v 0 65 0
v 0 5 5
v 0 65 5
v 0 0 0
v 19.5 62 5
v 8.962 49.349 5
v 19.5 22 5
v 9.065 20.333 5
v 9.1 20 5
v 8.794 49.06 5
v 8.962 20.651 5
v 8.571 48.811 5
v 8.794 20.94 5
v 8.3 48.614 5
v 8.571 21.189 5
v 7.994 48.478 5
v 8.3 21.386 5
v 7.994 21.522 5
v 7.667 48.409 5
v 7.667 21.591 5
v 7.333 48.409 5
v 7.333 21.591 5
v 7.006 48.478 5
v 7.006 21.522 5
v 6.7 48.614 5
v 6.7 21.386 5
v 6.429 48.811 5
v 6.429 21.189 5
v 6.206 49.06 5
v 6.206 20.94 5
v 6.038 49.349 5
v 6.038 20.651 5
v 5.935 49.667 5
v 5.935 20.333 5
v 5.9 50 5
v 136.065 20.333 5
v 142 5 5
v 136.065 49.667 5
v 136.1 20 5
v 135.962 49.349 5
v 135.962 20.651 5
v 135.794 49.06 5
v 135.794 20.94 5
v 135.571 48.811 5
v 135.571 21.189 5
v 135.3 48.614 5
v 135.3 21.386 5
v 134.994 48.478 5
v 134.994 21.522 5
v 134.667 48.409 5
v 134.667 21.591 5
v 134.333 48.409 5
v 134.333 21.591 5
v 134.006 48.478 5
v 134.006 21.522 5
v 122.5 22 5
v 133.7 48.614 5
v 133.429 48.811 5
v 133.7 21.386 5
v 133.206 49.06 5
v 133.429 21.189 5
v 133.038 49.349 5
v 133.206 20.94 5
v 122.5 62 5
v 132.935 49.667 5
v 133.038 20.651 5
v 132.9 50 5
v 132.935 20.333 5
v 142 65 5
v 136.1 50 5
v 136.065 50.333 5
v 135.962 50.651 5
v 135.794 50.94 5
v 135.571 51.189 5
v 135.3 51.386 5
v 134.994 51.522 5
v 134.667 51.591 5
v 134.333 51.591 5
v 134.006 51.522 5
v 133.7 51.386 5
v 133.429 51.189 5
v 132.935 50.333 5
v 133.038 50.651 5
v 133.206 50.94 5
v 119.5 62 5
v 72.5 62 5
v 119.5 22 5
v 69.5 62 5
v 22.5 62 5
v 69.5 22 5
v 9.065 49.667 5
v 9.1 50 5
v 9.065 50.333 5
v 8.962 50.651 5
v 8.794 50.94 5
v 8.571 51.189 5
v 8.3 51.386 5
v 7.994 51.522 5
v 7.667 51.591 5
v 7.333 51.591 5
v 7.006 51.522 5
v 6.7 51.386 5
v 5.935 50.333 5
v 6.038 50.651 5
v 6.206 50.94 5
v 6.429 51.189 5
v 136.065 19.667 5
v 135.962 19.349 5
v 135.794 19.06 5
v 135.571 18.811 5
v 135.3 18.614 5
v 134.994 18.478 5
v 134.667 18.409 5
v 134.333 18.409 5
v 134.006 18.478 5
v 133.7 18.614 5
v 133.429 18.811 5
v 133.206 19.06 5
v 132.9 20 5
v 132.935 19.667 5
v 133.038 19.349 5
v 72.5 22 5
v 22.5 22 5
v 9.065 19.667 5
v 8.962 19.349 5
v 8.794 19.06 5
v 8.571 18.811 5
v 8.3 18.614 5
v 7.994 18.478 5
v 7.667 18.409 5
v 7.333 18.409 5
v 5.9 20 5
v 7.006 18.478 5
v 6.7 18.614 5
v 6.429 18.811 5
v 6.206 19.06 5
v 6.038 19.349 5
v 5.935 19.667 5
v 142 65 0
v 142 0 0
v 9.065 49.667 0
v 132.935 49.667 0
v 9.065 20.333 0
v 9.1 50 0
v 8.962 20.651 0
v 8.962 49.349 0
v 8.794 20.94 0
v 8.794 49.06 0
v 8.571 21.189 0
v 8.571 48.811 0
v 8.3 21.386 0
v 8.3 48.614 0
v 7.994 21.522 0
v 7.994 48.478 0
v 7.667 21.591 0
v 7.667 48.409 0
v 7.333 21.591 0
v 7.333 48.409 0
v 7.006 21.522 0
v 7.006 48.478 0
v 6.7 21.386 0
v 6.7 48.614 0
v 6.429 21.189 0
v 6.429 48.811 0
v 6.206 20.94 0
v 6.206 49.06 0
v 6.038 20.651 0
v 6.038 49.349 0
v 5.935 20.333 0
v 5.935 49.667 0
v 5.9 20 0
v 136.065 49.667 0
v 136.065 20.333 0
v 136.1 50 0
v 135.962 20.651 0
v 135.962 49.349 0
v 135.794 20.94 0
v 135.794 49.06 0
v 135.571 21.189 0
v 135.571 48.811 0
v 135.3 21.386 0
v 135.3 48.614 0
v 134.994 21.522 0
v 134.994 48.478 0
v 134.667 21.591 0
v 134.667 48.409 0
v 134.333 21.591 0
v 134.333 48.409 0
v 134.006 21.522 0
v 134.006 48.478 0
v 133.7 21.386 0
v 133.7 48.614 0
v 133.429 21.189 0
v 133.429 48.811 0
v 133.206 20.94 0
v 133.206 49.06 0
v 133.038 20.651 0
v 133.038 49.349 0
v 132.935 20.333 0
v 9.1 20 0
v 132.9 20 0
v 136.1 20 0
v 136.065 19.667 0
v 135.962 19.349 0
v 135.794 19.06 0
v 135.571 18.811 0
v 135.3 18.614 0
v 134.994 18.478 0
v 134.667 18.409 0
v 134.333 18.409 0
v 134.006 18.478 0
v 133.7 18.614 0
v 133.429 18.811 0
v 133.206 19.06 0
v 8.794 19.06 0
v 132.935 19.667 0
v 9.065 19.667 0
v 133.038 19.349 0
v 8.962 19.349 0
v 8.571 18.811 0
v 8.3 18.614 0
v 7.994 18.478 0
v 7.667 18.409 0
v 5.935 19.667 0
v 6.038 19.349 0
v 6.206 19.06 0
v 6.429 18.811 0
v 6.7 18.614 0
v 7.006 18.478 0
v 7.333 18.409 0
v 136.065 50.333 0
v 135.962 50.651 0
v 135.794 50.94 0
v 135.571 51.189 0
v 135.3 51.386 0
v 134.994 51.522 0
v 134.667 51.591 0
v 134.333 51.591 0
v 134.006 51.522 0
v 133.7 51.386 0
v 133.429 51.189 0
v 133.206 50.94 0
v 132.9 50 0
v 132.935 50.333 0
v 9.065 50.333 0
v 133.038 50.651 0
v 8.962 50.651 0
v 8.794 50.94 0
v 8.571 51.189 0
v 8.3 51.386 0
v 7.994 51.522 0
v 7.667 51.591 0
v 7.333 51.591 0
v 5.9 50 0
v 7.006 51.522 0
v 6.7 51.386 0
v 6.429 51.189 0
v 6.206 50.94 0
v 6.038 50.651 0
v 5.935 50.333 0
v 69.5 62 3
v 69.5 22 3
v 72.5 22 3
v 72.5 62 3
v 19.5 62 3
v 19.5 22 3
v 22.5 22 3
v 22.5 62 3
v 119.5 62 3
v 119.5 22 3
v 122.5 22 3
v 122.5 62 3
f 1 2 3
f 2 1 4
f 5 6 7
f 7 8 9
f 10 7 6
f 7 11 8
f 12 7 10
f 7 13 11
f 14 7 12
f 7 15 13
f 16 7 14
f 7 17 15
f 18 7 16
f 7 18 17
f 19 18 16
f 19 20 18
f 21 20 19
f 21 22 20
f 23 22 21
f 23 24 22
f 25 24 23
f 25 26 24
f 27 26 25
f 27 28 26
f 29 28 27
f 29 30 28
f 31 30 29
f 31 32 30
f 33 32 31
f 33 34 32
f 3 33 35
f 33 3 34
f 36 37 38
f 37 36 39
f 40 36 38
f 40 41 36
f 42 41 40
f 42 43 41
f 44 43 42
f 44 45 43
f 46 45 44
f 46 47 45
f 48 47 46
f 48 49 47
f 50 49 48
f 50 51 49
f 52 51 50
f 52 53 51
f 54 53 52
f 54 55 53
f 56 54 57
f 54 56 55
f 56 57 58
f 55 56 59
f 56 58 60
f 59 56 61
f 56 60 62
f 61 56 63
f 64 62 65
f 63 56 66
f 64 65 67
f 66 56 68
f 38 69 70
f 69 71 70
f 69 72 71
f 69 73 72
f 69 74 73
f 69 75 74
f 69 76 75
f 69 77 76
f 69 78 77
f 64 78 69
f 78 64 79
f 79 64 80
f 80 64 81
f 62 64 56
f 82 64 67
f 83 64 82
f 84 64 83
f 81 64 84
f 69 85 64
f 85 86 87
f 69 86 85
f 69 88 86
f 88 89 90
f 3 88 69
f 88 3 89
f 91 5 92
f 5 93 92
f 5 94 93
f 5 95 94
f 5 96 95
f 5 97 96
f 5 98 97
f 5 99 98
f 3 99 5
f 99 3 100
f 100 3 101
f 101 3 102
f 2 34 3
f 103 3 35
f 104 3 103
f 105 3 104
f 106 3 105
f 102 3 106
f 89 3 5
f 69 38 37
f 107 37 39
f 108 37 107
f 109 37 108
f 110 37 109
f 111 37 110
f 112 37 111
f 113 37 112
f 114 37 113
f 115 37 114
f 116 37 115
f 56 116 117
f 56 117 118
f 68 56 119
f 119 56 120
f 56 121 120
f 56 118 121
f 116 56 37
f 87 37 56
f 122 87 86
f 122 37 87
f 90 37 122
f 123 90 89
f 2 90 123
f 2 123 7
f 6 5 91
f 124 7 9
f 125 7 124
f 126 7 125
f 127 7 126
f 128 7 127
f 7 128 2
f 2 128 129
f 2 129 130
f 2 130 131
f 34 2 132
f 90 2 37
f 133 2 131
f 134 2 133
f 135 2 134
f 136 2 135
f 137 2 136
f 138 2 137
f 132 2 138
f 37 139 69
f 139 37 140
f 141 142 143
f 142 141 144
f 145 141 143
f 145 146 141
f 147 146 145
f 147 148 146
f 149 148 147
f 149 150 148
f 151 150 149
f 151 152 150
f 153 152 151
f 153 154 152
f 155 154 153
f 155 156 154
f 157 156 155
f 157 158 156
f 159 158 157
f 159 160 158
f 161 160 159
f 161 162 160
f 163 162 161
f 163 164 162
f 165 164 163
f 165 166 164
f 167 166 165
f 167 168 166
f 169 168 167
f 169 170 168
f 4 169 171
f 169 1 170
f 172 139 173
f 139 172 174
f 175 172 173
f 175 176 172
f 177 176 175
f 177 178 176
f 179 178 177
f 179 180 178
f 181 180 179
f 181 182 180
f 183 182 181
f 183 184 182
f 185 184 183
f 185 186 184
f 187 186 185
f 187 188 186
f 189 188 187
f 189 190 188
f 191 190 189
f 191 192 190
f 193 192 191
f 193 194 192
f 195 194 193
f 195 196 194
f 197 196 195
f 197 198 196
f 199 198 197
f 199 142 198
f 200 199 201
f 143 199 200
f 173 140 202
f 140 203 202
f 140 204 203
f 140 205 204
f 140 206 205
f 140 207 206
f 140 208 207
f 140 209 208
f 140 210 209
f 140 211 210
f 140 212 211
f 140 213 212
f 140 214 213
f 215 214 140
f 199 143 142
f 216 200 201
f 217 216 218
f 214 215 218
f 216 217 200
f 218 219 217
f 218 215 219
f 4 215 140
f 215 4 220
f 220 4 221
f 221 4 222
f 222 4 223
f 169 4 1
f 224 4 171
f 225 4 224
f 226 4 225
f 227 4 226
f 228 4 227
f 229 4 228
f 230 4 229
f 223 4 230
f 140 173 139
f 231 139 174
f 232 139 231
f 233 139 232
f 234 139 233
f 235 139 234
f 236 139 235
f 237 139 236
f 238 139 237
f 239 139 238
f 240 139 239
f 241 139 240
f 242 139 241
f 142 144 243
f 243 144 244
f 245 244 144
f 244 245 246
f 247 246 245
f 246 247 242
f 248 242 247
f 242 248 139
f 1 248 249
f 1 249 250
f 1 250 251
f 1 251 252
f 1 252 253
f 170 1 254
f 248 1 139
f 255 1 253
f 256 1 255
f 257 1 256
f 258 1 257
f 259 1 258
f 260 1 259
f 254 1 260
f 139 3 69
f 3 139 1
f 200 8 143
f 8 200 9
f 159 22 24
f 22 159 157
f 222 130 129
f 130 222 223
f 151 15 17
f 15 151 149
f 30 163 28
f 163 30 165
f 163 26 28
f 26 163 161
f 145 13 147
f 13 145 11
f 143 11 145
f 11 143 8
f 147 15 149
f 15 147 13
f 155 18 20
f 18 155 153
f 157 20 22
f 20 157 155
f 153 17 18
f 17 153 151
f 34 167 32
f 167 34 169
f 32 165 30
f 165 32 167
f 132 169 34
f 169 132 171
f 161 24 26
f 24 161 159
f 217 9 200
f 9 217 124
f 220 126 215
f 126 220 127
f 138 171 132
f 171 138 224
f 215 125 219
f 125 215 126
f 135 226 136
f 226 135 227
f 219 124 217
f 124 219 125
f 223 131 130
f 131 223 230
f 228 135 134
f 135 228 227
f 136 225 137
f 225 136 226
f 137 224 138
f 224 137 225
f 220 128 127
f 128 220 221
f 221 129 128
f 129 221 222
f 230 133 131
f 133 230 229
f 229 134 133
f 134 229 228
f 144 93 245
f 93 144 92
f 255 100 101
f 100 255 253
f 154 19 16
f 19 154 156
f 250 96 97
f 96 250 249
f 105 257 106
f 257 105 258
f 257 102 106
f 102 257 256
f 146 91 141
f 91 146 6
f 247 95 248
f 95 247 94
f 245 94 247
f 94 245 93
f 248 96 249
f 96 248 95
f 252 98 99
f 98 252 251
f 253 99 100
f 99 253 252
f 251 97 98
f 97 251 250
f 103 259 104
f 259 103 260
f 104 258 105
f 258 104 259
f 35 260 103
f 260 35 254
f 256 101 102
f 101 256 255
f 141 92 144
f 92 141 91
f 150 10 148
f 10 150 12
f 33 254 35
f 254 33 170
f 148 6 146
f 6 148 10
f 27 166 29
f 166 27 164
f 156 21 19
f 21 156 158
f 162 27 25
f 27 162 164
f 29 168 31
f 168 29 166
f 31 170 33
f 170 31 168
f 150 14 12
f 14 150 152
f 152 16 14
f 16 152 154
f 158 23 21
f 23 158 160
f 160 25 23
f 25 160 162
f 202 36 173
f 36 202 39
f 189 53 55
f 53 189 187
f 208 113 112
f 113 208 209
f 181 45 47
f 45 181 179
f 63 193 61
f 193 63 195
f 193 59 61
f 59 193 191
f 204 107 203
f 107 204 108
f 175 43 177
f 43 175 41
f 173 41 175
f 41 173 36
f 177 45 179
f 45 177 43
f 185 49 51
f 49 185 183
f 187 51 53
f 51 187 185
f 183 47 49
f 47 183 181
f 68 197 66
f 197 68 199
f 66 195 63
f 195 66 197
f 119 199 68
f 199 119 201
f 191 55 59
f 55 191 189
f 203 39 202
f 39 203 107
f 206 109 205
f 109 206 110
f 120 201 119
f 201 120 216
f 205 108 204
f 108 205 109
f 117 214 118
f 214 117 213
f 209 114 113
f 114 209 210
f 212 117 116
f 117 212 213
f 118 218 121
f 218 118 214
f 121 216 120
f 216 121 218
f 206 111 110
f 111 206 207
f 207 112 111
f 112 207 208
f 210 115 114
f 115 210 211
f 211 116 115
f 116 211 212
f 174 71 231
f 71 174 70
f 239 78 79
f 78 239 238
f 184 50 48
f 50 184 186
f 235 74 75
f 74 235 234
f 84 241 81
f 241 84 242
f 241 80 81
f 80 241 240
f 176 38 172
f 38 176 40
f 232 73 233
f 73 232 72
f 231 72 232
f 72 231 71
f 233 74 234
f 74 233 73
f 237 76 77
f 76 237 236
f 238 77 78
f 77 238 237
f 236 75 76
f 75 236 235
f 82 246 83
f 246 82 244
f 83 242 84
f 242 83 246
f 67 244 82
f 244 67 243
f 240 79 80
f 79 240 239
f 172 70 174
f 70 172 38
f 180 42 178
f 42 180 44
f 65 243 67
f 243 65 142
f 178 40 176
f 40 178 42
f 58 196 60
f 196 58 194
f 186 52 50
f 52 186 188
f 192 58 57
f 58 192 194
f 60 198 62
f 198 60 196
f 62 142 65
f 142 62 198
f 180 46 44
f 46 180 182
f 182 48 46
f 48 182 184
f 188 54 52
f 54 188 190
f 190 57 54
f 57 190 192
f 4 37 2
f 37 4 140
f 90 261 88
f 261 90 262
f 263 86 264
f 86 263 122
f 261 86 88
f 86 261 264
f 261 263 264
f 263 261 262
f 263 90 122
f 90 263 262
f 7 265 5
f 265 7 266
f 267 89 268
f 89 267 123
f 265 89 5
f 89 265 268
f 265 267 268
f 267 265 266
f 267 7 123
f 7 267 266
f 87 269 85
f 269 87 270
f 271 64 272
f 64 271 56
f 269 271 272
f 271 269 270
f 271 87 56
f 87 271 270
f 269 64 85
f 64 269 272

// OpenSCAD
$fn=30;

difference(){
translate([0,0,0])cube([142,65,5]);
    
translate([7.5,20,0])cylinder(d=3.2,h=12);
translate([7.5,50,0])cylinder(d=3.2,h=12);
translate([142-7.5,20,0])cylinder(d=3.2,h=12);
translate([142-7.5,50,0])cylinder(d=3.2,h=12);
translate([-30,0,0])cylinder(d=10,h=142,$fn=4);
translate([0,0,5])rotate([0,90,0])
    cylinder(d=10,h=142,$fn=4);
    
translate([69.5,22,3])cube([3,40,2]);
translate([69.5-50,22,3])cube([3,40,2]);
translate([69.5+50,22,3])cube([3,40,2]);    
}
